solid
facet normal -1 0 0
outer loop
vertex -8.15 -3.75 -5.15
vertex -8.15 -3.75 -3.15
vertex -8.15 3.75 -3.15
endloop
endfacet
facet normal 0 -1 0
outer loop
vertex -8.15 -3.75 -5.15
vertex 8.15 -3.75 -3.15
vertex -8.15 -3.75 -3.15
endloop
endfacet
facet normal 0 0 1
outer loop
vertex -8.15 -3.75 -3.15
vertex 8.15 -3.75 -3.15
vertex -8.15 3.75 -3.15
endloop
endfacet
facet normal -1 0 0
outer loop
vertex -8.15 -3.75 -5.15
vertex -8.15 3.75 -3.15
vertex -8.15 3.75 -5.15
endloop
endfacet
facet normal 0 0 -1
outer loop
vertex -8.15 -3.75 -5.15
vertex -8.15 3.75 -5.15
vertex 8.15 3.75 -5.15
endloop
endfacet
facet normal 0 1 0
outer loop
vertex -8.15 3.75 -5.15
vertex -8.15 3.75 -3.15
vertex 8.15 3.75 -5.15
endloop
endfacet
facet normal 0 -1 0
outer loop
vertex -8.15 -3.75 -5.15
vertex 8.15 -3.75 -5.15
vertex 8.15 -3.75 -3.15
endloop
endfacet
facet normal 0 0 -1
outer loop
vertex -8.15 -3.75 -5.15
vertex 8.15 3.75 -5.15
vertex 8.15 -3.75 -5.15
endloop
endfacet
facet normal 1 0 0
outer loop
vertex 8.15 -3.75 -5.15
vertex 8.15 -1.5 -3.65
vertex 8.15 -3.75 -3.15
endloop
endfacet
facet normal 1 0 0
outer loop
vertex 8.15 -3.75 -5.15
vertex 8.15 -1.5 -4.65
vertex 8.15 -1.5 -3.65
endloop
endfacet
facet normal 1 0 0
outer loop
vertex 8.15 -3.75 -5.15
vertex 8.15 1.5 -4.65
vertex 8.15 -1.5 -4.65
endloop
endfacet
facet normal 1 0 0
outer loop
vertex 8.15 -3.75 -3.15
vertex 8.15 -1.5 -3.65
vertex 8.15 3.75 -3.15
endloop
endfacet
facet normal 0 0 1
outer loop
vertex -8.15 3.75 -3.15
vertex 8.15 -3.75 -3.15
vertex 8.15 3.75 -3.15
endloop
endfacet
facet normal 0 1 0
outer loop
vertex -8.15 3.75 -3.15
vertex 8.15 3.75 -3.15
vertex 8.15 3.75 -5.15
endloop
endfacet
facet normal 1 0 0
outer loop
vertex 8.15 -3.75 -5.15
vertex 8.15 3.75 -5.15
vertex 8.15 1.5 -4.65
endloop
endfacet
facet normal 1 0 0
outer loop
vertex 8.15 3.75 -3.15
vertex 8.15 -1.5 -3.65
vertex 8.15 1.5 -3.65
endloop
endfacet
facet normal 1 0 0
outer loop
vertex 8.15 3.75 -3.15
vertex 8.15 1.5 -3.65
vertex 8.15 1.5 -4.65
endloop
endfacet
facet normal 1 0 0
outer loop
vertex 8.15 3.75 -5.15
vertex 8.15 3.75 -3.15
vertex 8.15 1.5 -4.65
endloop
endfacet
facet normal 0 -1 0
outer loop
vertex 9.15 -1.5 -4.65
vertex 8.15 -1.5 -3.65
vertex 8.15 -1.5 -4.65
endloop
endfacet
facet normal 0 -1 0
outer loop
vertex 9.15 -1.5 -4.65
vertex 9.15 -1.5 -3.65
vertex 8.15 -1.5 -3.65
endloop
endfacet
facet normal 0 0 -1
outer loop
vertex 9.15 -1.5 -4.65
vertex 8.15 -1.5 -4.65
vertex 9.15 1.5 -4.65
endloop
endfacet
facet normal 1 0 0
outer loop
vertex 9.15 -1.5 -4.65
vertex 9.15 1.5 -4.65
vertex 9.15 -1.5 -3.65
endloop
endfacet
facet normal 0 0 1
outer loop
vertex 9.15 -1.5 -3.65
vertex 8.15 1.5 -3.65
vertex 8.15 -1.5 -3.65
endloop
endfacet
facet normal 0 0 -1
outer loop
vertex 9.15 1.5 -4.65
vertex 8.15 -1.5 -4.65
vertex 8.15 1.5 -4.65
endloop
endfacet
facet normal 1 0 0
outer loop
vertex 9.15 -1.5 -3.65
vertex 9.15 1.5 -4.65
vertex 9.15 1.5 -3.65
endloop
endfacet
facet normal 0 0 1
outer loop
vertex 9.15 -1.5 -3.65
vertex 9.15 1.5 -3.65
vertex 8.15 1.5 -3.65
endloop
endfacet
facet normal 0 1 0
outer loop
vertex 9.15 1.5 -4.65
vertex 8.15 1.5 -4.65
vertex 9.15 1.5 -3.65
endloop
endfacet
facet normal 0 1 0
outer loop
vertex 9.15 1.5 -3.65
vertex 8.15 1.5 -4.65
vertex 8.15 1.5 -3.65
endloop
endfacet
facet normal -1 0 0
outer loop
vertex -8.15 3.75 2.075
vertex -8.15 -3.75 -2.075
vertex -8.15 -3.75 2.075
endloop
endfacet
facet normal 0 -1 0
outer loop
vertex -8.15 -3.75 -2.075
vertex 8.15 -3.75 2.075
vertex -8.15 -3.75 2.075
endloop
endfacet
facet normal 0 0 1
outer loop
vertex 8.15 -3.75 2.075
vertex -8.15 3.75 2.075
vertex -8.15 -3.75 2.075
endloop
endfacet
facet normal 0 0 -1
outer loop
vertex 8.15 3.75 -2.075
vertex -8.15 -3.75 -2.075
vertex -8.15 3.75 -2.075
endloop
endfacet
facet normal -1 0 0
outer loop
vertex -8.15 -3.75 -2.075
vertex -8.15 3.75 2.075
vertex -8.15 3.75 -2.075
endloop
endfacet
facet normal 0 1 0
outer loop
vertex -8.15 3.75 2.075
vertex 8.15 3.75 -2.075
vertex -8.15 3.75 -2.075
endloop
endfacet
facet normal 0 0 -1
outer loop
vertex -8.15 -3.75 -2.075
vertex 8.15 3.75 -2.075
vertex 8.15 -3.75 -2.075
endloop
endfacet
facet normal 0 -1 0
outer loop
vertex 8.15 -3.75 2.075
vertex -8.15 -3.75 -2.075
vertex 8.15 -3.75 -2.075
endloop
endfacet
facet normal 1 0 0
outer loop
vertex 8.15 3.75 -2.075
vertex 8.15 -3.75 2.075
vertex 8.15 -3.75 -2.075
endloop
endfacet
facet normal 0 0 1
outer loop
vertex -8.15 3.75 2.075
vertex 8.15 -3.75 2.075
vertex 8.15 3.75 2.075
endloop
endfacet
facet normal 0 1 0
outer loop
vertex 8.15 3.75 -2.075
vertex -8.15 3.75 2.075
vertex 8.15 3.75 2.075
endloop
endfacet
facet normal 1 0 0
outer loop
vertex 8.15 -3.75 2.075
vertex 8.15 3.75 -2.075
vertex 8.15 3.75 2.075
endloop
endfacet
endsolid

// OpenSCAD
// Sharp GP2Y0A21YK0F Distance Sensor Model (OpenSCAD)
// Coordinate System: Origin at center, Z points towards the mounting face (-Z is the mounting side)
// Units: mm

// --- Dimensions Reference ---
// Based on Outline Dimensions provided in the datasheet
// X-axis dimension (Length): 16.3 mm (from diagram)
// Y-axis dimension (Width): 7.5 mm (from diagram, based on projection)
// Thickness/Height: Varies depending on feature

// Define overall dimensions for the main body block (based on the base view)
module sensor_body() {
    // The shape is defined by the outline dimensions shown in the bottom view.
    // X dimension = 16.3 mm, Y dimension = 7.5 mm
    cube([16.3, 7.5, 4.15], center = true); // Using 4.15 as a reference depth/thickness for the main body structure
}

module mounting_features() {
    // Define mounting features based on the diagram (example placement relative to center)

    // Note: These dimensions are relative placements derived from the datasheet's outline view.
    
    // Example of defining a connector area (simplified representation)
    color("red")
    translate([0, 0, -4.15]) // Positioned at the mounting face (-Z direction)
    cube([16.3, 7.5, 2.0], center = true); // Represents the mounting plate/connector area

    // Example of defining a sensor position mark (simplified representation)
    color("blue")
    translate([8.15, 0, -4.15]) // Position based on X=8.15
    cube([2.0, 3.0, 1.0], center = true); // Represents a feature/mark at X=8.15
}

// --- Assembly ---

sensor_body();
mounting_features();

// Optional: Visualization for checking the model
// color("green")
// translate([0, 0, -20])
// cube([30, 30, 40], center = true); // Reference cube
